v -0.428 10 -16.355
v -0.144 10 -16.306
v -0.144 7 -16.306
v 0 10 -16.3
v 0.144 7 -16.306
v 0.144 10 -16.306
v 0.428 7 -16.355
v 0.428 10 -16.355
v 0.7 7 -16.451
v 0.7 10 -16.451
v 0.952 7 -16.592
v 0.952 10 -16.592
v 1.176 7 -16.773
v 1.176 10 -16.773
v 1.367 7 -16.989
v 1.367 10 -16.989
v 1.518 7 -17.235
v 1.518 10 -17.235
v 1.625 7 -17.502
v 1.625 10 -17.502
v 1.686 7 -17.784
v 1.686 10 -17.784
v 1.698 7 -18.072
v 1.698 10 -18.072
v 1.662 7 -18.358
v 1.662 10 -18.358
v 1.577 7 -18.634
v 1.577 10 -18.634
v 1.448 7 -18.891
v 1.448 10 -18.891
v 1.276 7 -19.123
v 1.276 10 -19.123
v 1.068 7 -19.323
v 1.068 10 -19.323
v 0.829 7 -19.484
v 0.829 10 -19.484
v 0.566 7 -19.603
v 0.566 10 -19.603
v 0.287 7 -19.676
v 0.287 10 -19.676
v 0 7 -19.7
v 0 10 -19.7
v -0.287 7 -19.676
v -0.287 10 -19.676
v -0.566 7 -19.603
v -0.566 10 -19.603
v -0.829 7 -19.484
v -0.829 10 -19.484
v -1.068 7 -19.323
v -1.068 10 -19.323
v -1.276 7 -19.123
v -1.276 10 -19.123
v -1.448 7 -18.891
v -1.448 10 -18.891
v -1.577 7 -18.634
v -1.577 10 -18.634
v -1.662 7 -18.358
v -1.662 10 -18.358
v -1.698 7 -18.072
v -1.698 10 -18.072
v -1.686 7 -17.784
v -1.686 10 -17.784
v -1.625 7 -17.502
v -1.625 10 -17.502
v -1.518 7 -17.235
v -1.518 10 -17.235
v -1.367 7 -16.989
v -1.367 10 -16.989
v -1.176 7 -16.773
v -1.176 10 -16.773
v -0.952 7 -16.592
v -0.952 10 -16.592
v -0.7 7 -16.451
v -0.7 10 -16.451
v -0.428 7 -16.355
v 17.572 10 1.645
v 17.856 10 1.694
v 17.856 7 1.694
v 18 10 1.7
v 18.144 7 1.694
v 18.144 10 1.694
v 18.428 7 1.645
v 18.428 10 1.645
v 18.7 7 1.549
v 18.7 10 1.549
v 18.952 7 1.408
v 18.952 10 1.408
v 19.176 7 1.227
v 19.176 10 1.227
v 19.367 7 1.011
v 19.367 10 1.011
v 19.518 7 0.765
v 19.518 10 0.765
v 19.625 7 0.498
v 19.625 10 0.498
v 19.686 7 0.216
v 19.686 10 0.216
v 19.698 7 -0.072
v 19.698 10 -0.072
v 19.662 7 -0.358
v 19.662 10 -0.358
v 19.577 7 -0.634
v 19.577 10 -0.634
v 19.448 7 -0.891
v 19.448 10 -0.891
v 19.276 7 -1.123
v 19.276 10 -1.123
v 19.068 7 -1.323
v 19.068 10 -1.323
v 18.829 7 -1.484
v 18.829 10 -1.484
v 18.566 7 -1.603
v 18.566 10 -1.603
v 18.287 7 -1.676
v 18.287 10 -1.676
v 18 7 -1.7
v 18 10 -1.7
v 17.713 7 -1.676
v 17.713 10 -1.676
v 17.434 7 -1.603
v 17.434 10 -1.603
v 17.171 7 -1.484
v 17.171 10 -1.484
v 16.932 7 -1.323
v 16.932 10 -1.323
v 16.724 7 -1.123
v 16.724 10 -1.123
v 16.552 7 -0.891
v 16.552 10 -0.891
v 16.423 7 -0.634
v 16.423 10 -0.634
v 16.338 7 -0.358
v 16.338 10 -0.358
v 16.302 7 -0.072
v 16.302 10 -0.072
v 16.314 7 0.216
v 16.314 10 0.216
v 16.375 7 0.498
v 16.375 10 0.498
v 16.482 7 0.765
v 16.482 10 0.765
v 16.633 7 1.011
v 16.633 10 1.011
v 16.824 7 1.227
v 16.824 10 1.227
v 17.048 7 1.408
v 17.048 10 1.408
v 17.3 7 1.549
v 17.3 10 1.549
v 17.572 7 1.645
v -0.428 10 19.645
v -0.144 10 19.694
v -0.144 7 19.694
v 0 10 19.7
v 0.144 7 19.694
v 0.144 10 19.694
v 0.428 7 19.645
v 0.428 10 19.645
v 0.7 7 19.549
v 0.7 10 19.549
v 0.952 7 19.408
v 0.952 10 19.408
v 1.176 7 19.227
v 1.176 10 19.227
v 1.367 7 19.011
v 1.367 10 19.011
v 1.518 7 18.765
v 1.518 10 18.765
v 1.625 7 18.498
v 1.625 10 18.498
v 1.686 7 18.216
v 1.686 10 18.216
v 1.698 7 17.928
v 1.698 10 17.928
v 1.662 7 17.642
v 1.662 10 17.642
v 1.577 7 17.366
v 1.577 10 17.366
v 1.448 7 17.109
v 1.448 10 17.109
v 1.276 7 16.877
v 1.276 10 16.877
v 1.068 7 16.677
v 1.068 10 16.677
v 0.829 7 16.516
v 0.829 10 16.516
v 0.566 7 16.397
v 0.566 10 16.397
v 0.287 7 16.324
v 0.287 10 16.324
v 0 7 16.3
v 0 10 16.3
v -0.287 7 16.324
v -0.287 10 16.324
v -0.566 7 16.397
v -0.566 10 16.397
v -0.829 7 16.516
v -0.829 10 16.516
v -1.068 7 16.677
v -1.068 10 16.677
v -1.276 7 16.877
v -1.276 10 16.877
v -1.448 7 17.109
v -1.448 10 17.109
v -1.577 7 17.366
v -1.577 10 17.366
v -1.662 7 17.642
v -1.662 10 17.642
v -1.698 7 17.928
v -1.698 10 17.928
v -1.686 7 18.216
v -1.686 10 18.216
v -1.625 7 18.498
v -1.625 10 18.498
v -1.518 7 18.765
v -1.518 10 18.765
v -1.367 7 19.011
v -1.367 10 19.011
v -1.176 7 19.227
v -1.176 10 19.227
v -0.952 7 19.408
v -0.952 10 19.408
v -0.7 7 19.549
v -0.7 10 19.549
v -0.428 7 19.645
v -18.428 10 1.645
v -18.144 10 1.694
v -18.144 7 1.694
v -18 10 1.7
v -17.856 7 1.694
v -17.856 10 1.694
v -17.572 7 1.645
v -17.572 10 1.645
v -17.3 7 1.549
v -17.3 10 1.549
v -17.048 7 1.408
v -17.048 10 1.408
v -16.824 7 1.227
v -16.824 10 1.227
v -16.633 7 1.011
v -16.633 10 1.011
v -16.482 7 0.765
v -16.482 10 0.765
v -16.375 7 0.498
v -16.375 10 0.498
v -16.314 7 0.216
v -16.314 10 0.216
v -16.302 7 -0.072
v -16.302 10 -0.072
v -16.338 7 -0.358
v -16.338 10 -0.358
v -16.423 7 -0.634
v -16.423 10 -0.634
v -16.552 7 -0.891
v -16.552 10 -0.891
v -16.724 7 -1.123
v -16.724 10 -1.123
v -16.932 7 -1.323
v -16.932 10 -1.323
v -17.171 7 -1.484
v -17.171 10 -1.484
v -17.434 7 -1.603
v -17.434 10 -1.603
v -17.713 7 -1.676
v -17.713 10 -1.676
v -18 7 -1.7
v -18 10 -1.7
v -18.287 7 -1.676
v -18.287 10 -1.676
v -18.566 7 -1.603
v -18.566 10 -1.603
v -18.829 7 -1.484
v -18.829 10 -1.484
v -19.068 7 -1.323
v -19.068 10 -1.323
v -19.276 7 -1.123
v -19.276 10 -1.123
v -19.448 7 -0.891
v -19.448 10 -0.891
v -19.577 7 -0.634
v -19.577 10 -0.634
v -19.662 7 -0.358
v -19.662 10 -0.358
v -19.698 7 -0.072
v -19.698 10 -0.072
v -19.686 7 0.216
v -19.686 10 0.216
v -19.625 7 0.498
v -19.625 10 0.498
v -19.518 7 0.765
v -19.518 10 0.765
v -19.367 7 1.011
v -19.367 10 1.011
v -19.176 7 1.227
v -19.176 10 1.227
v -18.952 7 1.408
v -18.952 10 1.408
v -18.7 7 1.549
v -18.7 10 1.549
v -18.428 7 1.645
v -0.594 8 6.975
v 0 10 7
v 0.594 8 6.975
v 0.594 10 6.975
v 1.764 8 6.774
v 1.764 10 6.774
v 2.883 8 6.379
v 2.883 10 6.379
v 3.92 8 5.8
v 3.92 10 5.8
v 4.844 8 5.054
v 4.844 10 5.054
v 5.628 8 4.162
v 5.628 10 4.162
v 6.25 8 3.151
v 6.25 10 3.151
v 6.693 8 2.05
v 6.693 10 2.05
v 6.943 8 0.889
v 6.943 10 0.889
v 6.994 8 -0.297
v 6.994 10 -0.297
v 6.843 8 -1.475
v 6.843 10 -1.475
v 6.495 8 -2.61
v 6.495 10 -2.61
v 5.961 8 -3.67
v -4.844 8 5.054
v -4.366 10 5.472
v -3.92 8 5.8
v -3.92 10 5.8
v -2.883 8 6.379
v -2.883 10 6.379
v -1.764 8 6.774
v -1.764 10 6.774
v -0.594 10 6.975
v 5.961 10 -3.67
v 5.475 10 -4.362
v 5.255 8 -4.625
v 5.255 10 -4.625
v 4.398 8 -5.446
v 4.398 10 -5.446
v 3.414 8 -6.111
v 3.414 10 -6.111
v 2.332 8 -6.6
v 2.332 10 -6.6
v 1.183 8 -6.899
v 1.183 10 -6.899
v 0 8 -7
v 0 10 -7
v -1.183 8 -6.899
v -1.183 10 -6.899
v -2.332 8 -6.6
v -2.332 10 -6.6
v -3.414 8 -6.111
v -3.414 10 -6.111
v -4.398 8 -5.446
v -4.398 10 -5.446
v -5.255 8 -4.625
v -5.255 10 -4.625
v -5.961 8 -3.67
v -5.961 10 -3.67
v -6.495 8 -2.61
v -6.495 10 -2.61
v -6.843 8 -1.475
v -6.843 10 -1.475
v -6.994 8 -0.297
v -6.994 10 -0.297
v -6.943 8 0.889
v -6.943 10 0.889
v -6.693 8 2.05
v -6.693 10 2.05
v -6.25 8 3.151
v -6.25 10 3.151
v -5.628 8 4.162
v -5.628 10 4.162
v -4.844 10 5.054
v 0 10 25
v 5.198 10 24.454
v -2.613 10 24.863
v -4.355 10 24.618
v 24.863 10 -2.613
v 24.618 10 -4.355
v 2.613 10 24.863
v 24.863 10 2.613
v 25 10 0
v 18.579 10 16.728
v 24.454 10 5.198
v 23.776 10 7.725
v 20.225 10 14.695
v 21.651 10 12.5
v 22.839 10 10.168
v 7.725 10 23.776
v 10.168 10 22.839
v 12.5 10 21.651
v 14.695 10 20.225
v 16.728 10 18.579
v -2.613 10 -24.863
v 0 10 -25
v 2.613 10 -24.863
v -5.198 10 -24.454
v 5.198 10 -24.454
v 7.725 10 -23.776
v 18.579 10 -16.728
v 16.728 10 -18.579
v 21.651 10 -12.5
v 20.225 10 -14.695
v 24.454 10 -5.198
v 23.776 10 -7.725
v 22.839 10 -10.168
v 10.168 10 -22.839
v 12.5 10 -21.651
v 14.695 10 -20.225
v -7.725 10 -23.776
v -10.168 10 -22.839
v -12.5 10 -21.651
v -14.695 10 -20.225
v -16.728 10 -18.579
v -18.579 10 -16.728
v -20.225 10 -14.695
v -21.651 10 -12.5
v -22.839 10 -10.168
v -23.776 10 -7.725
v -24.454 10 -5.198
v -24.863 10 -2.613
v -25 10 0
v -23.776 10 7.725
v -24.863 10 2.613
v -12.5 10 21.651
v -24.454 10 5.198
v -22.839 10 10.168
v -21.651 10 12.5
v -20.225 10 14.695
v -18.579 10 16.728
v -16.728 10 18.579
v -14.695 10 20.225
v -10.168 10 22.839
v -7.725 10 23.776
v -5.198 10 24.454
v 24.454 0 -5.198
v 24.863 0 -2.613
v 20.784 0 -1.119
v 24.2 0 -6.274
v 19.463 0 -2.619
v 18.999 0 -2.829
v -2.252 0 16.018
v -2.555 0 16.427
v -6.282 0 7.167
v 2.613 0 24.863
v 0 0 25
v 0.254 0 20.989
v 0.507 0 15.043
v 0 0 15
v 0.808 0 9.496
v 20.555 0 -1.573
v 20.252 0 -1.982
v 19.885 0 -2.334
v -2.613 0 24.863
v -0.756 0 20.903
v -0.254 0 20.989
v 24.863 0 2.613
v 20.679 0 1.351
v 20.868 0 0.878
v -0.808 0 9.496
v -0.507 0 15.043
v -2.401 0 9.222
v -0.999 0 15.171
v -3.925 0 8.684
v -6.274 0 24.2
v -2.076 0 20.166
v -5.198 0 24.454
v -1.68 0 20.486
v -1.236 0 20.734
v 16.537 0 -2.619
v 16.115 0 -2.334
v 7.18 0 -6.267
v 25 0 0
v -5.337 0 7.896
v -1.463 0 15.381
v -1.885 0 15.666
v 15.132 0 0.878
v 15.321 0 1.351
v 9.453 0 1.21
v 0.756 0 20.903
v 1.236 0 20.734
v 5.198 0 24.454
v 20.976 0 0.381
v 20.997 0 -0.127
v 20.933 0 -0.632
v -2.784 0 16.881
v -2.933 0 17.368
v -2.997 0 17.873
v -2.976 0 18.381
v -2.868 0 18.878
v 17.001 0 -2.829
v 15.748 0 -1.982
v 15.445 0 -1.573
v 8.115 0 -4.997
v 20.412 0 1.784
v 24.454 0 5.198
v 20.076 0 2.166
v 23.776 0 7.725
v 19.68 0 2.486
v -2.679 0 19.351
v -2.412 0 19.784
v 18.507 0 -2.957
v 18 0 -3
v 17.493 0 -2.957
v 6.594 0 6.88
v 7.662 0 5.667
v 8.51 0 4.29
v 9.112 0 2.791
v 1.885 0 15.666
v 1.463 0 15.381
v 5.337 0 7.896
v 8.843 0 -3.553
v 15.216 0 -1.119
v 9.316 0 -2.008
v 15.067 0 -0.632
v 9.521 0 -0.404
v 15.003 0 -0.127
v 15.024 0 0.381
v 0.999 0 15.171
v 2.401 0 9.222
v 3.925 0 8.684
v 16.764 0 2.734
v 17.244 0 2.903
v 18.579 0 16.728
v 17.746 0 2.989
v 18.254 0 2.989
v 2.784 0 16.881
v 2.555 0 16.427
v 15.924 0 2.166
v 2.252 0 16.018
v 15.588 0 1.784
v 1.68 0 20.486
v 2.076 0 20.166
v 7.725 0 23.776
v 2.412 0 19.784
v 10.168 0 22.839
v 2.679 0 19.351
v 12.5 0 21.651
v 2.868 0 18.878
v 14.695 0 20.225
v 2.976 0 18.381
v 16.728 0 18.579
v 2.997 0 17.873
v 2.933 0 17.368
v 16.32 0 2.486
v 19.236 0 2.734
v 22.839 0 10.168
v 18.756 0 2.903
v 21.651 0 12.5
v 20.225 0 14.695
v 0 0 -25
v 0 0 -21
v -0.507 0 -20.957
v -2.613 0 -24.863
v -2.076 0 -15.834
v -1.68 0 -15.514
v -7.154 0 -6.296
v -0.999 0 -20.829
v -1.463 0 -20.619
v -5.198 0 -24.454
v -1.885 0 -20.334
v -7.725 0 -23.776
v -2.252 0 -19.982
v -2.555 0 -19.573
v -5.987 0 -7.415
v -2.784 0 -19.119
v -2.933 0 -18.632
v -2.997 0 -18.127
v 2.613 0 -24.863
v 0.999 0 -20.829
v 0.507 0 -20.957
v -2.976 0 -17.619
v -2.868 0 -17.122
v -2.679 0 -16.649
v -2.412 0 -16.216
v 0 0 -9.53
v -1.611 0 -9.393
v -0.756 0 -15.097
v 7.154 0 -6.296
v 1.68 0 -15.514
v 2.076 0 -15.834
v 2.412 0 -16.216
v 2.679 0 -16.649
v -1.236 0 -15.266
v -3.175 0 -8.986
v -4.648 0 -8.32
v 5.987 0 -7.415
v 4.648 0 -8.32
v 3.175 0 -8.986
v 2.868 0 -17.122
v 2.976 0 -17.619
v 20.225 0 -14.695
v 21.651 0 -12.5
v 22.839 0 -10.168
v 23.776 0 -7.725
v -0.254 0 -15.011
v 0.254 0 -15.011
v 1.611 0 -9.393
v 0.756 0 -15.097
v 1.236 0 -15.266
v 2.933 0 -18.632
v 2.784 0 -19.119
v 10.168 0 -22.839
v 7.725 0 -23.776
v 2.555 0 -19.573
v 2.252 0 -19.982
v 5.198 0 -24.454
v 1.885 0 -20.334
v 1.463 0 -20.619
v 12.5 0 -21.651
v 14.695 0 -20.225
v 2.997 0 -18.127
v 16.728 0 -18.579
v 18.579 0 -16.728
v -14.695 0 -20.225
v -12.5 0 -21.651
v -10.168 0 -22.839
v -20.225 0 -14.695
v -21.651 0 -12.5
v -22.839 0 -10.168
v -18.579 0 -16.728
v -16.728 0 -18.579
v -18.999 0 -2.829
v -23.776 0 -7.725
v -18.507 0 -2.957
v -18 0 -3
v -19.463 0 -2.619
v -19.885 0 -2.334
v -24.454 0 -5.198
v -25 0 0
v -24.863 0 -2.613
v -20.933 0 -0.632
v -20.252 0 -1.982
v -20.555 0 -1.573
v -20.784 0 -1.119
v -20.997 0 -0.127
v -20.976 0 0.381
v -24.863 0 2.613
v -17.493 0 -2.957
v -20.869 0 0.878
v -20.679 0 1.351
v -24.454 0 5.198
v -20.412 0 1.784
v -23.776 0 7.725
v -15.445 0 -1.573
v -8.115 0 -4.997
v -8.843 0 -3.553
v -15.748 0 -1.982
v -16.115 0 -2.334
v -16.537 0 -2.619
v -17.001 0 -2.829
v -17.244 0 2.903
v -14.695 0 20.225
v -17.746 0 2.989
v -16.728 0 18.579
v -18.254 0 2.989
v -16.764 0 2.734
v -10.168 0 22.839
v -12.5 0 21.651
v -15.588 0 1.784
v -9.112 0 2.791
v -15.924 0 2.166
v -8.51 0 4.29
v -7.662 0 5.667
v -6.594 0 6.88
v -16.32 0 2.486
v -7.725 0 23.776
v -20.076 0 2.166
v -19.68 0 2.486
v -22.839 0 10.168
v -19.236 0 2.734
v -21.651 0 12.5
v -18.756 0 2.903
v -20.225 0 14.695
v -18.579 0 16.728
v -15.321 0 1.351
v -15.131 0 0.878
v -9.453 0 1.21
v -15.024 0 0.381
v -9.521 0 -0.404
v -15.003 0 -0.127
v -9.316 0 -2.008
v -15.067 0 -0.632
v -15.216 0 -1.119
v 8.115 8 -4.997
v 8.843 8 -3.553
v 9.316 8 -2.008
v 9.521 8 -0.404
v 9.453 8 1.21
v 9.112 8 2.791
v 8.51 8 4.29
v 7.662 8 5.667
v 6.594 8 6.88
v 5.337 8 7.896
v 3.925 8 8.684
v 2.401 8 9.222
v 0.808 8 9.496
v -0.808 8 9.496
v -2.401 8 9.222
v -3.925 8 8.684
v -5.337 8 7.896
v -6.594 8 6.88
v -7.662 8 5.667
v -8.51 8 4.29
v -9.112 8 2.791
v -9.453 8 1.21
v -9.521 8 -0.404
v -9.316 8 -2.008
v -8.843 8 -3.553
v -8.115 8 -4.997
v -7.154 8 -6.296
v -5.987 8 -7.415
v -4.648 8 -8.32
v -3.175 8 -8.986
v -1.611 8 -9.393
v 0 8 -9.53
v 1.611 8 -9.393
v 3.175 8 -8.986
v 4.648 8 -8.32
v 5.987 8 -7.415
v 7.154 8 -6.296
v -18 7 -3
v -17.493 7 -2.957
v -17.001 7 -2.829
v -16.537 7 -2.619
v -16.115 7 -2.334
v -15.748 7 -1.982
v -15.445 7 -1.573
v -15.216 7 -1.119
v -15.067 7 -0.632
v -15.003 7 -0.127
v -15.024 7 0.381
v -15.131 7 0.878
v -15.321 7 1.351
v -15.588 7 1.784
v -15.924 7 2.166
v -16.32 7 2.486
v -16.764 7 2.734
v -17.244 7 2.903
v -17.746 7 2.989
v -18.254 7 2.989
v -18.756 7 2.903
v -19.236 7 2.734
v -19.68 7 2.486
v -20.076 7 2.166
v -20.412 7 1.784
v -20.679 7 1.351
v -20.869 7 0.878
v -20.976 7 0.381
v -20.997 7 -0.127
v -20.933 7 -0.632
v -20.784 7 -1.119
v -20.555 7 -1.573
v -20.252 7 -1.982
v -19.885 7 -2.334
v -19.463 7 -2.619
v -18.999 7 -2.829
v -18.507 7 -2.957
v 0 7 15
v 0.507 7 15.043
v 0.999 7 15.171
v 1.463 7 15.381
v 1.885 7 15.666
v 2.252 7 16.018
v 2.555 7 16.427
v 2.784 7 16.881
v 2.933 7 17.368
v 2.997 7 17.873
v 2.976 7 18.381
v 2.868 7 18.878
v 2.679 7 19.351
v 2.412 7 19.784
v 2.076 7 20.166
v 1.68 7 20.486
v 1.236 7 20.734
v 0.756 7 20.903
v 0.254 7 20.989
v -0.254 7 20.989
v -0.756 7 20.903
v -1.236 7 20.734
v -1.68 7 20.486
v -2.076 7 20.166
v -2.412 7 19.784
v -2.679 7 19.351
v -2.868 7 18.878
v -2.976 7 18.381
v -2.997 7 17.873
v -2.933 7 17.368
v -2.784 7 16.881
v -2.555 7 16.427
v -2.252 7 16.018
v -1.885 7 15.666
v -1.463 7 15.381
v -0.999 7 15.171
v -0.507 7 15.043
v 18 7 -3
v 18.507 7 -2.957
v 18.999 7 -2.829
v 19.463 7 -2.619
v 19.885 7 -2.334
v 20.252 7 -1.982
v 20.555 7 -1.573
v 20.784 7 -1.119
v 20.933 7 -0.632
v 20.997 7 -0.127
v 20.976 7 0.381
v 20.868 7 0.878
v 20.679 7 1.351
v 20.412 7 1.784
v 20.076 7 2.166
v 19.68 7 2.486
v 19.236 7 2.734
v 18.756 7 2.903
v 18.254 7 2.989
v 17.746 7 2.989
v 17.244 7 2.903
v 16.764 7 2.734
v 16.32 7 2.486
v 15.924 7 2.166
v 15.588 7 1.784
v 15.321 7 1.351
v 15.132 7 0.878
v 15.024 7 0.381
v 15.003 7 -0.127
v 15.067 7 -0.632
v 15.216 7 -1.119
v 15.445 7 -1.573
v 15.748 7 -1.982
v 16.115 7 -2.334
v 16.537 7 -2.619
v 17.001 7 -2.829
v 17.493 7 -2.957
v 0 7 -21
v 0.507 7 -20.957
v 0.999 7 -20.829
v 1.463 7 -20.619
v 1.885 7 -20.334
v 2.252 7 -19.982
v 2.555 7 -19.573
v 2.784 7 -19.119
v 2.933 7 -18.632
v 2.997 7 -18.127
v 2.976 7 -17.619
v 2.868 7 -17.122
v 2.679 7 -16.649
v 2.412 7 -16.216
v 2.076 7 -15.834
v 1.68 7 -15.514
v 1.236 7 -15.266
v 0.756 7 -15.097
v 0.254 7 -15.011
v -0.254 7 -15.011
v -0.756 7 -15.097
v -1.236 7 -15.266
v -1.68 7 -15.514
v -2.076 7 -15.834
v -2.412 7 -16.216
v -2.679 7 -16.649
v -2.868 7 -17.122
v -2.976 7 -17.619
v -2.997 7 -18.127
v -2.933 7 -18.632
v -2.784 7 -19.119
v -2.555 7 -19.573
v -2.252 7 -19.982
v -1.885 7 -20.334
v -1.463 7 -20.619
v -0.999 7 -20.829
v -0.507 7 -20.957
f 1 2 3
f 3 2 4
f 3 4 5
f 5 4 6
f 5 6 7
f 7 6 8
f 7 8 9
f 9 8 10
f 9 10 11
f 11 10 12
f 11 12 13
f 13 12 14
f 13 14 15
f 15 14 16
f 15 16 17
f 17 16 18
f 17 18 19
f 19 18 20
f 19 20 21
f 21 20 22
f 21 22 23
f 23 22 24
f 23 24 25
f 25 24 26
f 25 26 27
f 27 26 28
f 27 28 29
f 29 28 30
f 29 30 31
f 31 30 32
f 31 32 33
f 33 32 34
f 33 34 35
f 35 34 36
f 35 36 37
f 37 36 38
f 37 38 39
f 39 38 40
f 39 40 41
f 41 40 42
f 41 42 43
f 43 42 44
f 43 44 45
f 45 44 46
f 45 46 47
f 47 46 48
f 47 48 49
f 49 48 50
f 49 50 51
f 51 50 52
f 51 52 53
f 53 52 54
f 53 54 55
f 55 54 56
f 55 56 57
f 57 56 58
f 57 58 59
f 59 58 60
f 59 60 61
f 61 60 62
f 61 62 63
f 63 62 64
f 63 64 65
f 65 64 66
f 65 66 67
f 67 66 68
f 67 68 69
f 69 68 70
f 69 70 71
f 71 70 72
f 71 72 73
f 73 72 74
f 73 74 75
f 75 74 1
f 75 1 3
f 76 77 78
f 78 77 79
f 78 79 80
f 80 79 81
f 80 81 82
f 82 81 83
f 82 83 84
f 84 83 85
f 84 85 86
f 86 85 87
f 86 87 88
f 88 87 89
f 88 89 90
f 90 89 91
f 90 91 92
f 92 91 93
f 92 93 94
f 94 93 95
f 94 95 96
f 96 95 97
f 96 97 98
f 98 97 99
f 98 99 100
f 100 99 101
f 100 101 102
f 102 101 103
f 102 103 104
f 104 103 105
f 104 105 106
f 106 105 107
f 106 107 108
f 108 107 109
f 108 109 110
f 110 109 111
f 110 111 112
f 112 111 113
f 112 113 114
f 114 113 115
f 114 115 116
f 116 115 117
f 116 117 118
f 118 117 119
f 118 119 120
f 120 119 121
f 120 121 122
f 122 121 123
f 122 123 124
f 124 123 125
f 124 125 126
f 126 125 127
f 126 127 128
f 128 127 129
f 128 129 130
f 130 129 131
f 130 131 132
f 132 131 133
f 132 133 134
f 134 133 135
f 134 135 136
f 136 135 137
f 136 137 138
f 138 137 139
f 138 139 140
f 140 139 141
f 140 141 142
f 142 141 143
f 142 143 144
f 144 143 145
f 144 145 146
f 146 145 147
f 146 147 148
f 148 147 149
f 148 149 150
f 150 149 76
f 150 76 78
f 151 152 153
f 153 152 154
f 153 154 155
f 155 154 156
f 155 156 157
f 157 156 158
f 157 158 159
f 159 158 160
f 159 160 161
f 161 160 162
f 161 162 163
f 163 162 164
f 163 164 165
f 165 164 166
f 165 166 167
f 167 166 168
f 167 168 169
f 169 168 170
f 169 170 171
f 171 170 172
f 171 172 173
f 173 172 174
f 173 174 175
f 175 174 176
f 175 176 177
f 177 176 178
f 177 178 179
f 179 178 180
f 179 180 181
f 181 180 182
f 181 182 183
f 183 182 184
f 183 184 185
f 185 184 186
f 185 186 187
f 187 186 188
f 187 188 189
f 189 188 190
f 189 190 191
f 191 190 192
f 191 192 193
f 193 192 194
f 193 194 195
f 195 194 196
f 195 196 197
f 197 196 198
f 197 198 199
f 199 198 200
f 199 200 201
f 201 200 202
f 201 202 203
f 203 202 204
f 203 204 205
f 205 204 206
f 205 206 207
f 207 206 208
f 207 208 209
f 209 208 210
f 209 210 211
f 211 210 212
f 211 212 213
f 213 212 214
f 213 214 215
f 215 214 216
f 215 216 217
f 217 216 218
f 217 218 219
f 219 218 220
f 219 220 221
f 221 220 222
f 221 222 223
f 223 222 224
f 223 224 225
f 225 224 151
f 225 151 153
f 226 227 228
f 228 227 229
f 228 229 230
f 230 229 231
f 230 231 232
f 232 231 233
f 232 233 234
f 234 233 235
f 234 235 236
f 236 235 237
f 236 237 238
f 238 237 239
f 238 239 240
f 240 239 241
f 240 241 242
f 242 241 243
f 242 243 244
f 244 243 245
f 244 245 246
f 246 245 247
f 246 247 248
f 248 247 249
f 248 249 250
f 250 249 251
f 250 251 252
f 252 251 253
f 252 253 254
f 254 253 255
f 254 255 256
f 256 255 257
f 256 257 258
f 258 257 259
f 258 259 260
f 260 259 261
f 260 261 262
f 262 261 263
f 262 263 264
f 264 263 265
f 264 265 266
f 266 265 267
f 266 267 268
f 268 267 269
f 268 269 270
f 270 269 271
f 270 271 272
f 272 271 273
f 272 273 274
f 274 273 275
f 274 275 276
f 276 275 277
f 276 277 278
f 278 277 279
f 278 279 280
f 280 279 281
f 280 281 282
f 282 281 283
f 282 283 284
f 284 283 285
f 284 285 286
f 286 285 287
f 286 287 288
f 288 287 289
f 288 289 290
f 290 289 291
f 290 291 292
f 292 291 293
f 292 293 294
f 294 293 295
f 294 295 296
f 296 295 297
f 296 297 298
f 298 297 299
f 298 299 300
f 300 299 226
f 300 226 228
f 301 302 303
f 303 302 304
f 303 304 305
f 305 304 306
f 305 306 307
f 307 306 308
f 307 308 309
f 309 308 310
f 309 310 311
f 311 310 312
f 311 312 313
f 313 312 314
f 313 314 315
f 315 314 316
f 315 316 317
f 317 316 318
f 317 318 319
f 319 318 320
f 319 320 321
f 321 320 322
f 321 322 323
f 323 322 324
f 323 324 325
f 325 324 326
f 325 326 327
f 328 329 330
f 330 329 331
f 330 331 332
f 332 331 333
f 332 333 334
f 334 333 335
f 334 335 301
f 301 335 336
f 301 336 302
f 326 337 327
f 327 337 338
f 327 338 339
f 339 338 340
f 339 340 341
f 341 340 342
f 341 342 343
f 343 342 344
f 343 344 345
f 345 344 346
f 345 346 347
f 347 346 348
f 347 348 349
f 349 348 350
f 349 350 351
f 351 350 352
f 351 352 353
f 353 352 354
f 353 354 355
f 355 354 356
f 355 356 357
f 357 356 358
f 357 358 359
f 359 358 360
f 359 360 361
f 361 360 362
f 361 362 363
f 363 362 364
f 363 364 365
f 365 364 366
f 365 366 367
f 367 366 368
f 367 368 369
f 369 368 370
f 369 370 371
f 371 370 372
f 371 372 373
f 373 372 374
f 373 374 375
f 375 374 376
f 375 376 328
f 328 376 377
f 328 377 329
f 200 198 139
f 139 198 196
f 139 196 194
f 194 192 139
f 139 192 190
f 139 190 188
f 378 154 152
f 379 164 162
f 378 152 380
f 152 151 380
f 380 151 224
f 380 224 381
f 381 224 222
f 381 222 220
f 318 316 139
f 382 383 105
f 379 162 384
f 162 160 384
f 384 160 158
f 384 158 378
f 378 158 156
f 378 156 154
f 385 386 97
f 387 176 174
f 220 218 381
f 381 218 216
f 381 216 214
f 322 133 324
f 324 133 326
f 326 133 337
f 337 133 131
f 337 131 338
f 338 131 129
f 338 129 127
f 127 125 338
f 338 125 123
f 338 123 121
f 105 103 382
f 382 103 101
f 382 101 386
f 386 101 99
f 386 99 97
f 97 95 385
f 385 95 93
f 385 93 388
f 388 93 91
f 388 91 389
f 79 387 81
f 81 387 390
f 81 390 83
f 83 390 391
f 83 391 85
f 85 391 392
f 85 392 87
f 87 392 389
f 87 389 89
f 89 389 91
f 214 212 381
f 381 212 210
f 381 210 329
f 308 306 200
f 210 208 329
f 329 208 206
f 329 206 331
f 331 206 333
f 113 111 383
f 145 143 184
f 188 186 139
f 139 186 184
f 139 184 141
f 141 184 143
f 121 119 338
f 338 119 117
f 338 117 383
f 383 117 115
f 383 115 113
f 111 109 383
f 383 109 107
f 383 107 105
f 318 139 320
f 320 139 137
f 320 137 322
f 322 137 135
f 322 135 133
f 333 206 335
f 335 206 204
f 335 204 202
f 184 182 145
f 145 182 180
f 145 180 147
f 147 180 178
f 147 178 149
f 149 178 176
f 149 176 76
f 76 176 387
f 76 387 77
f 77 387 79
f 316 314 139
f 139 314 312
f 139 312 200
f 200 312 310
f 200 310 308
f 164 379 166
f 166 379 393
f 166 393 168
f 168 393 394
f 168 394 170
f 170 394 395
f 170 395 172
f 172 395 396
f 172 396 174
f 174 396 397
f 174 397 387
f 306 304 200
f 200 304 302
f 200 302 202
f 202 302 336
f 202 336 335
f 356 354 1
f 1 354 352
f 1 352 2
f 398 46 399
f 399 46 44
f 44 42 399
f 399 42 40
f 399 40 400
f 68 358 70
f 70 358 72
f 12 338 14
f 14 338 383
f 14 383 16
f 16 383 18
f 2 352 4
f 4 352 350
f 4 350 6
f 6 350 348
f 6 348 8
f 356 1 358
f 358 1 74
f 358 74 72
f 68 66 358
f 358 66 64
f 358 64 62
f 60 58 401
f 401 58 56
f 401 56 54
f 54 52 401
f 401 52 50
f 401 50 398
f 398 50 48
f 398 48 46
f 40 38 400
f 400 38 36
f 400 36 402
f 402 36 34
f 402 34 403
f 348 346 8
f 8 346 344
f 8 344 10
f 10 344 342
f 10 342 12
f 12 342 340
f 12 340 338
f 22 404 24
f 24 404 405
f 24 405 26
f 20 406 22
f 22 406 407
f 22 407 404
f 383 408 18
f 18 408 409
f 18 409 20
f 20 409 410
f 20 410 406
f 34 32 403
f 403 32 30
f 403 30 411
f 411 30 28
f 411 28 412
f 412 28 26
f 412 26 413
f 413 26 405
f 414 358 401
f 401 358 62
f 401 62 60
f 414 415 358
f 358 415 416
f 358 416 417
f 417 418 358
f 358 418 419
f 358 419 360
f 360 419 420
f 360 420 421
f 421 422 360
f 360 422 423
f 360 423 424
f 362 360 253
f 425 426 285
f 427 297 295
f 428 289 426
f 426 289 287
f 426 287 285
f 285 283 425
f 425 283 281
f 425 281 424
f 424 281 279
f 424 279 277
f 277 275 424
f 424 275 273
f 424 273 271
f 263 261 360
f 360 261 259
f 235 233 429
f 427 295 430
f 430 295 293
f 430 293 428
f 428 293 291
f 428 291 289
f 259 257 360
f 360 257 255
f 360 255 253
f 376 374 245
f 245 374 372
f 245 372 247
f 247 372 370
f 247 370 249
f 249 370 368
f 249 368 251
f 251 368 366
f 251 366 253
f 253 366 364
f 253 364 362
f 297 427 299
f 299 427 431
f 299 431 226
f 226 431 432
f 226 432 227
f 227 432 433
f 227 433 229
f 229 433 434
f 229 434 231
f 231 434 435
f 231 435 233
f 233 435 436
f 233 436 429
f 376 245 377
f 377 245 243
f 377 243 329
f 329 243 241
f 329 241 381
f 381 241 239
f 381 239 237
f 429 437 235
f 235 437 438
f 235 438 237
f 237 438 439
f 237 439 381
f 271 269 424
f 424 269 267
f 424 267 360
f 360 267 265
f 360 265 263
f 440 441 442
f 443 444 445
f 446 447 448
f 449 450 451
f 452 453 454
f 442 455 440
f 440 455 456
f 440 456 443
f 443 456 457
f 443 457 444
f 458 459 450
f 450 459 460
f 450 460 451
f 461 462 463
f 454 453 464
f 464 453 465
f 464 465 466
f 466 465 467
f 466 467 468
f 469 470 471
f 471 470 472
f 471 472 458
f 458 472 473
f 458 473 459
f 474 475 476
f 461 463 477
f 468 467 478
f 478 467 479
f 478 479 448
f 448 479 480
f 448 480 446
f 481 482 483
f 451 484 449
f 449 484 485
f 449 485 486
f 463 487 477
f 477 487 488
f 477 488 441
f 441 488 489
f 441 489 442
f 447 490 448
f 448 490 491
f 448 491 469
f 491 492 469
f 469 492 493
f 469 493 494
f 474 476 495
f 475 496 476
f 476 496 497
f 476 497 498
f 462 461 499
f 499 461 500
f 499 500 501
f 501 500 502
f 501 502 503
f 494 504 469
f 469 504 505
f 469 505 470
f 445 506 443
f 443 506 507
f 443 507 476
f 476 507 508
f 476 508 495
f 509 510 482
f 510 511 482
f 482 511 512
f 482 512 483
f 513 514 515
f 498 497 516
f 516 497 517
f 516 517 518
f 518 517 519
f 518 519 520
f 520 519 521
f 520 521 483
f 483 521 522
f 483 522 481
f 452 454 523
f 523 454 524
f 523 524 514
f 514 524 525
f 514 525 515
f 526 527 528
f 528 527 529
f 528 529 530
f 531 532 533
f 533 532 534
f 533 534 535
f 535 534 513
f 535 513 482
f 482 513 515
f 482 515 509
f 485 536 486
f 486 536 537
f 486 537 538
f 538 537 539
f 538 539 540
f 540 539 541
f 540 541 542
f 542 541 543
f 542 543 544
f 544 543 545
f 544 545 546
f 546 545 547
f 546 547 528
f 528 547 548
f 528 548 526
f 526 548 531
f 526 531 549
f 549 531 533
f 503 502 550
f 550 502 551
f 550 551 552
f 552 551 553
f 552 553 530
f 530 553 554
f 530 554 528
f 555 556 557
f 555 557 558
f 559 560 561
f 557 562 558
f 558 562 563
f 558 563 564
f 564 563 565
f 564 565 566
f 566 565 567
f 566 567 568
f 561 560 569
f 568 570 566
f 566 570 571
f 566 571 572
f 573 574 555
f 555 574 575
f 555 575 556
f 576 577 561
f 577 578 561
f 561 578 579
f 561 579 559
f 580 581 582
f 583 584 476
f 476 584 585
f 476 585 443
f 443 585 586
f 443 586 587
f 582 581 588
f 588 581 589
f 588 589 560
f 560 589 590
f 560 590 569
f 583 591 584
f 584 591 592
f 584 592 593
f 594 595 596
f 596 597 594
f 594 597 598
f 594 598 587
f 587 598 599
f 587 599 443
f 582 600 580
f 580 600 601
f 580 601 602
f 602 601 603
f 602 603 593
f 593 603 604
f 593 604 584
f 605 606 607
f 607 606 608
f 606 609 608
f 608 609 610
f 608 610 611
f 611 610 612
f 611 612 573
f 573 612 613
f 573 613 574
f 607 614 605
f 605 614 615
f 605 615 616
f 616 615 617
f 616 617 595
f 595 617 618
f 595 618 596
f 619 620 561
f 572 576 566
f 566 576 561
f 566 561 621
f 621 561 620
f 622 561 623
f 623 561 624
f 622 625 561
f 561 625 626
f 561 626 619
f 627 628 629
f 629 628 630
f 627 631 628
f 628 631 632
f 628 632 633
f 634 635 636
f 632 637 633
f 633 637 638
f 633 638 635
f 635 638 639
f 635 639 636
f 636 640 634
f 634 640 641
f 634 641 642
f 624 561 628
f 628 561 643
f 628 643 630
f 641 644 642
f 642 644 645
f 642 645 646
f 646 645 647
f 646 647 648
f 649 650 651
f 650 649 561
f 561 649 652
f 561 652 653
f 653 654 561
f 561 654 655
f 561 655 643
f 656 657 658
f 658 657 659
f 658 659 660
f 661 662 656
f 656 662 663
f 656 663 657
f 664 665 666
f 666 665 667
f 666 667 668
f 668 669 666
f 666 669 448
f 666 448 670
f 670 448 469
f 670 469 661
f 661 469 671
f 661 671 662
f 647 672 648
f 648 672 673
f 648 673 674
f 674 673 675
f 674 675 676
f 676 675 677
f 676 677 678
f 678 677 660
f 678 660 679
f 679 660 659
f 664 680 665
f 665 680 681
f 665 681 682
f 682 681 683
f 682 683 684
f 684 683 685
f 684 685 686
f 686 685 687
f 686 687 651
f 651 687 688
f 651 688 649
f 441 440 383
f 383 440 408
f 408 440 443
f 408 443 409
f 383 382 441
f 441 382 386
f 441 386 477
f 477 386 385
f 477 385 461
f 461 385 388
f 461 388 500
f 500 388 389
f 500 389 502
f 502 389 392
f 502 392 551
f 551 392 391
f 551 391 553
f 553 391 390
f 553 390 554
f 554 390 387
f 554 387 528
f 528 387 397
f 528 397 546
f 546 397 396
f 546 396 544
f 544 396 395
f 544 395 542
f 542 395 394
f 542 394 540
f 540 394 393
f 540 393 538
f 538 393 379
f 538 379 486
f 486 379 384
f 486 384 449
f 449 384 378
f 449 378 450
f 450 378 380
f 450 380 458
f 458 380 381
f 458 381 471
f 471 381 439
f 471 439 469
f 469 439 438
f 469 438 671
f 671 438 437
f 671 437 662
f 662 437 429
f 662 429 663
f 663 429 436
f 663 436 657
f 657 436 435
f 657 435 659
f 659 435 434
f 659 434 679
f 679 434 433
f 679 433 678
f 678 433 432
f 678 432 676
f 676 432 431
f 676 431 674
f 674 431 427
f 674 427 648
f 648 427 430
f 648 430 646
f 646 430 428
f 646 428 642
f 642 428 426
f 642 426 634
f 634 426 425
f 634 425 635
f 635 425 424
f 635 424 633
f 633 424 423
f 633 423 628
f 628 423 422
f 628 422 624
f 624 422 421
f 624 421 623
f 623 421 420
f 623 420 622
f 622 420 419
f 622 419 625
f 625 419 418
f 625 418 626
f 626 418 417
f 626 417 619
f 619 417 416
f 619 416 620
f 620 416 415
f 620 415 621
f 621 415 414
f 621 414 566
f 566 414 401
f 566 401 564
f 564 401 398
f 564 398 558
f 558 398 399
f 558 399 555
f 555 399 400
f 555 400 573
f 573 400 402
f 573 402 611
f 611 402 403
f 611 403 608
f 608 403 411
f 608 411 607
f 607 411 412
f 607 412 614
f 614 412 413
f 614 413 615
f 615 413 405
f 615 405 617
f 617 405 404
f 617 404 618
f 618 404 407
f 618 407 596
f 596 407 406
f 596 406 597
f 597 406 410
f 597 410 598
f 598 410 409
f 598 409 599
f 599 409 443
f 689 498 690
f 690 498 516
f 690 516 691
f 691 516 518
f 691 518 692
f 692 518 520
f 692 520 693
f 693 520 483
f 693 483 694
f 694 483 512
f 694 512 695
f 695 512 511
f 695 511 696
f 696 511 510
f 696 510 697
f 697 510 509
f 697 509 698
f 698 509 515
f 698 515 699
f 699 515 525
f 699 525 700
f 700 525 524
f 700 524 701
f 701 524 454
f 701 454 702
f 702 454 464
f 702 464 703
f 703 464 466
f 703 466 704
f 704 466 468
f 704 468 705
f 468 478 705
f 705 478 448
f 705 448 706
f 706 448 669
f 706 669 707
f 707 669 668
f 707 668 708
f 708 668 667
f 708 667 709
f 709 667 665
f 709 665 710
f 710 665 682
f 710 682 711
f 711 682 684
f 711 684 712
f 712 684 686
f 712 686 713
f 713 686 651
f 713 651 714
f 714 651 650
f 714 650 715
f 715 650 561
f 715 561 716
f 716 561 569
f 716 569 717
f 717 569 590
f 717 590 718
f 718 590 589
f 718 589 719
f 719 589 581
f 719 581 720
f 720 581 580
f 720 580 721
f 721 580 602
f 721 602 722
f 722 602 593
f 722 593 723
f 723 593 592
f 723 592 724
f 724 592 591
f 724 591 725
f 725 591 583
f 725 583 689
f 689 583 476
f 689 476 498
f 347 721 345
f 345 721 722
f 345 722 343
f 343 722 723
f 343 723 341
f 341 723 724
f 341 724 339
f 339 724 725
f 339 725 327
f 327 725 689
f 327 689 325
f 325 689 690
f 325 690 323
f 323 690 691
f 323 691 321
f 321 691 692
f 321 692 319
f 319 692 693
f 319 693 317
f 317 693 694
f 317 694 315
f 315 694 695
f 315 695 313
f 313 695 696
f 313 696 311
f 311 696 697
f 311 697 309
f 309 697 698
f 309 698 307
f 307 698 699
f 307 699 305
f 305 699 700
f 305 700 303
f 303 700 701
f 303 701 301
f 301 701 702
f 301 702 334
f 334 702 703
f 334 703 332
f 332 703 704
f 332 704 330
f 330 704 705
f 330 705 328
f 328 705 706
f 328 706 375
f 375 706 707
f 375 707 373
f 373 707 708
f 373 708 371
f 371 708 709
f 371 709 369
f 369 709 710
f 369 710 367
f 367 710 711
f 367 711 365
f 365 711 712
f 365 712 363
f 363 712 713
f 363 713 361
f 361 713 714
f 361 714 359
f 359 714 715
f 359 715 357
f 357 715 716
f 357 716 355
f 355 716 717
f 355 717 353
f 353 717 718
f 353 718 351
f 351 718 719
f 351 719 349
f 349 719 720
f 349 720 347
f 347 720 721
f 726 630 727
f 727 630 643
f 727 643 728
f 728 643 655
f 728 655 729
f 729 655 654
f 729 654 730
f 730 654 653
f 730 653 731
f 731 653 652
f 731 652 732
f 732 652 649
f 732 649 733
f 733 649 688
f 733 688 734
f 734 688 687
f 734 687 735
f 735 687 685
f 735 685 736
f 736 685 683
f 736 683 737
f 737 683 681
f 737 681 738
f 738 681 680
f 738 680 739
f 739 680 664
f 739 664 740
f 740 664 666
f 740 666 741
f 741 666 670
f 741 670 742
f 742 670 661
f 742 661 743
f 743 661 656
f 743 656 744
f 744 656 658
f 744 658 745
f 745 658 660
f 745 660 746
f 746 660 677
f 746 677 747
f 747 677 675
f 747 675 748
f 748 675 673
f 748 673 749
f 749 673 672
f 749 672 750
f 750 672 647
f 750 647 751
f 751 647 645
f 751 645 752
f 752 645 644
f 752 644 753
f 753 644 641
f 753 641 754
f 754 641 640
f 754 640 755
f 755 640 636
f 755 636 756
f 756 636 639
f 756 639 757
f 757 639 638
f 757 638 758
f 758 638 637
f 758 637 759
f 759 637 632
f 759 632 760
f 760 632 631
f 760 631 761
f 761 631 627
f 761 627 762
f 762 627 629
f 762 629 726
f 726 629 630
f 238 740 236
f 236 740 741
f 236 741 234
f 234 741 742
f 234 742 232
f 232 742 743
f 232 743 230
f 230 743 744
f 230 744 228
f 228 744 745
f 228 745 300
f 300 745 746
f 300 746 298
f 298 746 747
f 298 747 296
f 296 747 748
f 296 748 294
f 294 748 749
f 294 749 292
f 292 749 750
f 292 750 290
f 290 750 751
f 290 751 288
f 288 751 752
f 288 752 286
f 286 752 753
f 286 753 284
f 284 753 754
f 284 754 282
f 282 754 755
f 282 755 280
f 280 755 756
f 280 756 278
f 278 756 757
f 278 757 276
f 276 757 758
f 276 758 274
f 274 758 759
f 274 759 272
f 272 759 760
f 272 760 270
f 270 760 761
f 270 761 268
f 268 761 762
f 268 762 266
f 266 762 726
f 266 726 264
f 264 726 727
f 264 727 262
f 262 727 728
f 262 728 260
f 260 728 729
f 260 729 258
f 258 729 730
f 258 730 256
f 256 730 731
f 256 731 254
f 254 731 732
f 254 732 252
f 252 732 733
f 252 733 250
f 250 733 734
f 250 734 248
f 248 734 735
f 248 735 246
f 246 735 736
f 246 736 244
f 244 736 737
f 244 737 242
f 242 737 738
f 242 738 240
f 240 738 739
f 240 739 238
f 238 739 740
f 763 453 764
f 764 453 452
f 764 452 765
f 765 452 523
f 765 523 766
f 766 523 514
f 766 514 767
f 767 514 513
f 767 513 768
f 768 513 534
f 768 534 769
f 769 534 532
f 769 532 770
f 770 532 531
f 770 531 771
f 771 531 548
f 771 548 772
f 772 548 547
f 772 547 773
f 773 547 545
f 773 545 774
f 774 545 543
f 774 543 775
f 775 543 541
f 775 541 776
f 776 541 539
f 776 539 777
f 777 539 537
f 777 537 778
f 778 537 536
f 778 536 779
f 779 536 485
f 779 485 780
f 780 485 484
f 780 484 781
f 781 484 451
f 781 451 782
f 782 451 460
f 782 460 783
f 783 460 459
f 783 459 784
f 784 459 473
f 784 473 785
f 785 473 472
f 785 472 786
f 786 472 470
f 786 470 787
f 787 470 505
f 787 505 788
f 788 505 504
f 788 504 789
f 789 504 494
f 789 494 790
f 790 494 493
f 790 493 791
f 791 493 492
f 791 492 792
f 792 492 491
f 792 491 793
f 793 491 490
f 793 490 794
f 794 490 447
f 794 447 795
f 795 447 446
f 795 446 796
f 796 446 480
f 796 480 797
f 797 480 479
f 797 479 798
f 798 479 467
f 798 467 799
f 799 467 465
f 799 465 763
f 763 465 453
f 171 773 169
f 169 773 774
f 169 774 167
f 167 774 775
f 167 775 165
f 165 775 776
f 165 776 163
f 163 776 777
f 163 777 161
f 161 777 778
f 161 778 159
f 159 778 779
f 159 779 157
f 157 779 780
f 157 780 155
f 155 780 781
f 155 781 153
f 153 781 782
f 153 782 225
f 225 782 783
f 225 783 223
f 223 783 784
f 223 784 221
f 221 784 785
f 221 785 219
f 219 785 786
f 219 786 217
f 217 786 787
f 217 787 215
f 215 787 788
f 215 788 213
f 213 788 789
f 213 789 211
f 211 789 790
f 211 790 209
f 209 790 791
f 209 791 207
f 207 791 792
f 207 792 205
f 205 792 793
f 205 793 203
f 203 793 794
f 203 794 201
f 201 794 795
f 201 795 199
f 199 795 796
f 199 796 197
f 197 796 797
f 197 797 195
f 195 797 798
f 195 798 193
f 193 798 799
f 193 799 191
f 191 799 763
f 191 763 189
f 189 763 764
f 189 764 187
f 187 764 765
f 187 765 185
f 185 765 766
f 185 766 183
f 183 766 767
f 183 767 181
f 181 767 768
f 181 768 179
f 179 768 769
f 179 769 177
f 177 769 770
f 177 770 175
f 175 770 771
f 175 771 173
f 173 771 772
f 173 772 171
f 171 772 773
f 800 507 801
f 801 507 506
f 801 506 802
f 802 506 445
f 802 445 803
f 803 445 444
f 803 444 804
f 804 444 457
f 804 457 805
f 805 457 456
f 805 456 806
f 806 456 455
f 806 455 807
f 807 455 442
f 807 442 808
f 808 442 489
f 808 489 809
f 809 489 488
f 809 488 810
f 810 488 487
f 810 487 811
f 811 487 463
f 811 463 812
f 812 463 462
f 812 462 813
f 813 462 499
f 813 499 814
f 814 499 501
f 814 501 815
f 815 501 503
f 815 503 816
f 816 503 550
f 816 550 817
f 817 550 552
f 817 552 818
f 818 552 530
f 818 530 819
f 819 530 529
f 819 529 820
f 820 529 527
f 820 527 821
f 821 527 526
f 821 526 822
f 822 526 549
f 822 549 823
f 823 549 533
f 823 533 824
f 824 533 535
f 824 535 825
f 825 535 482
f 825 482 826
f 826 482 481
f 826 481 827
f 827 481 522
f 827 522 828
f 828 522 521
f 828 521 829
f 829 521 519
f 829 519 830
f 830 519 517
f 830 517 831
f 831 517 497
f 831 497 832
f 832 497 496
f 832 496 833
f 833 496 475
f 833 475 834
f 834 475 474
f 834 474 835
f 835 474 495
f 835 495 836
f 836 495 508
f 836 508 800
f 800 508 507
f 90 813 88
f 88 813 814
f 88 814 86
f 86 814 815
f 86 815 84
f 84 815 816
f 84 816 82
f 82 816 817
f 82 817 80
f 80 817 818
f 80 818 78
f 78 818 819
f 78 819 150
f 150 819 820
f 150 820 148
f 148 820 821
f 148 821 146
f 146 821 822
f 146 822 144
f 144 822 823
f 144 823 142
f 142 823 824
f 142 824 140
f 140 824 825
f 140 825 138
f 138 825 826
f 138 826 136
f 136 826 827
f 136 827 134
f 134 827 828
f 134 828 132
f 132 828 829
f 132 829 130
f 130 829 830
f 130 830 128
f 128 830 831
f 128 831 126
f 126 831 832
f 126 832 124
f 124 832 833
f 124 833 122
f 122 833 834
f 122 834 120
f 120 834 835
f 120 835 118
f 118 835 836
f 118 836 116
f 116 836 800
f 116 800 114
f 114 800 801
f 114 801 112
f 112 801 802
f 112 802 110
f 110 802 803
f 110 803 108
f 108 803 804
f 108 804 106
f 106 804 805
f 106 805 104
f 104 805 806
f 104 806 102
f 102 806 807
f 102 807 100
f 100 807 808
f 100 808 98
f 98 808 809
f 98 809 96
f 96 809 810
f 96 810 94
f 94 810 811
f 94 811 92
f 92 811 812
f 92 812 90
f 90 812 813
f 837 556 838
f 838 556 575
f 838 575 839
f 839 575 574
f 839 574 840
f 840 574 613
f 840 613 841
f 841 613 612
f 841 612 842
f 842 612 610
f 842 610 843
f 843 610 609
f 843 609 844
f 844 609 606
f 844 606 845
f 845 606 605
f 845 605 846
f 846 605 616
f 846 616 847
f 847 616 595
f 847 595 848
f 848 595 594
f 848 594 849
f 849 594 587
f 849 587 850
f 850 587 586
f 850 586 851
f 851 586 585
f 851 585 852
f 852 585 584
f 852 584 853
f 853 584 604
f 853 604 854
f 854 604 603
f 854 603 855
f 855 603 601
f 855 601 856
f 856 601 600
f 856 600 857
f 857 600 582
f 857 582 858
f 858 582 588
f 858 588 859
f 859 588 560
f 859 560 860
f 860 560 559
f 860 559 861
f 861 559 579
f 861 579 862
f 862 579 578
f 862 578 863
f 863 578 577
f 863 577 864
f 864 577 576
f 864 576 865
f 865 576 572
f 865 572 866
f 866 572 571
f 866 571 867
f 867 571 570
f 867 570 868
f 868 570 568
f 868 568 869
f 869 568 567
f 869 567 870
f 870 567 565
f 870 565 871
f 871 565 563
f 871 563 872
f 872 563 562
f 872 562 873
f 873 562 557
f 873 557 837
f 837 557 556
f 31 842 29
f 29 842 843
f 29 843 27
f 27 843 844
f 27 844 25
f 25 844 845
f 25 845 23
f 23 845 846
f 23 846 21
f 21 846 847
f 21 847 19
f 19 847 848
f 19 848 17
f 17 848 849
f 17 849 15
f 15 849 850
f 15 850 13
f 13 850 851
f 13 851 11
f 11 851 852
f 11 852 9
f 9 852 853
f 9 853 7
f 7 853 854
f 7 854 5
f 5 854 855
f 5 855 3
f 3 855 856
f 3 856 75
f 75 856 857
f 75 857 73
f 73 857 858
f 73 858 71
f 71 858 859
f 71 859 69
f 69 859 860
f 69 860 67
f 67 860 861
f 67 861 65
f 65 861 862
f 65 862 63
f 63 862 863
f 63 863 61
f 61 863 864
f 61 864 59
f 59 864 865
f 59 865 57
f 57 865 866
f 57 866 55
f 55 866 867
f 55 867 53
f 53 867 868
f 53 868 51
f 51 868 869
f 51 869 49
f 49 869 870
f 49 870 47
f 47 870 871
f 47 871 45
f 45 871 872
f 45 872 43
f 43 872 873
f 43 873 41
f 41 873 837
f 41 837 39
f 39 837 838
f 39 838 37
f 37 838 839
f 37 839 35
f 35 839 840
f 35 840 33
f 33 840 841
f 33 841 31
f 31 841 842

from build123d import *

# Parameters (mm, degrees)
SKETCH1_R           = 25
SKETCH1_R_2         = 7
SKETCH1_R_3         = 1.7
BOSS_EXTRUDE1_DEPTH = 10
SKETCH2_R           = 9.53
CUT_EXTRUDE1_DEPTH  = 8
SKETCH4_R           = 3
CUT_EXTRUDE2_DEPTH  = 7


with BuildPart() as part:
    # Sketch1 → Boss-Extrude1 (new body)
    with BuildSketch(Plane(origin=(0, 0, 0), x_dir=(1, 0, 0), z_dir=(0, 1, 0))):
        with Locations(Location((0, 0, 0), (0, 0, 270))):
            Circle(SKETCH1_R)
        with Locations(Location((0, 0, 0), (0, 0, 270))):
            Circle(SKETCH1_R_2, mode=Mode.SUBTRACT)
        with Locations(Location((0, 18, 0), (0, 0, 270))):
            Circle(SKETCH1_R_3, mode=Mode.SUBTRACT)
        with Locations(Location((18, 0, 0), (0, 0, 270))):
            Circle(SKETCH1_R_3, mode=Mode.SUBTRACT)
        with Locations(Location((0, -18, 0), (0, 0, 270))):
            Circle(SKETCH1_R_3, mode=Mode.SUBTRACT)
        with Locations(Location((-18, 0, 0), (0, 0, 270))):
            Circle(SKETCH1_R_3, mode=Mode.SUBTRACT)
    extrude(amount=BOSS_EXTRUDE1_DEPTH)

    # Sketch2 → Cut-Extrude1 (cut)
    with BuildSketch(Plane.XZ):
        with Locations(Location((0, 0, 0), (0, 0, 270))):
            Circle(SKETCH2_R)
    extrude(amount=-CUT_EXTRUDE1_DEPTH, mode=Mode.SUBTRACT)

    # Sketch4 → Cut-Extrude2 (cut)
    with BuildSketch(Plane.XZ):
        with Locations(Location((0, 18, 0), (0, 0, 270))):
            Circle(SKETCH4_R)
        with Locations(Location((-18, 0, 0), (0, 0, 270))):
            Circle(SKETCH4_R)
        with Locations(Location((0, -18, 0), (0, 0, 270))):
            Circle(SKETCH4_R)
        with Locations(Location((18, 0, 0), (0, 0, 270))):
            Circle(SKETCH4_R)
    extrude(amount=-CUT_EXTRUDE2_DEPTH, mode=Mode.SUBTRACT)


solid = part.part
